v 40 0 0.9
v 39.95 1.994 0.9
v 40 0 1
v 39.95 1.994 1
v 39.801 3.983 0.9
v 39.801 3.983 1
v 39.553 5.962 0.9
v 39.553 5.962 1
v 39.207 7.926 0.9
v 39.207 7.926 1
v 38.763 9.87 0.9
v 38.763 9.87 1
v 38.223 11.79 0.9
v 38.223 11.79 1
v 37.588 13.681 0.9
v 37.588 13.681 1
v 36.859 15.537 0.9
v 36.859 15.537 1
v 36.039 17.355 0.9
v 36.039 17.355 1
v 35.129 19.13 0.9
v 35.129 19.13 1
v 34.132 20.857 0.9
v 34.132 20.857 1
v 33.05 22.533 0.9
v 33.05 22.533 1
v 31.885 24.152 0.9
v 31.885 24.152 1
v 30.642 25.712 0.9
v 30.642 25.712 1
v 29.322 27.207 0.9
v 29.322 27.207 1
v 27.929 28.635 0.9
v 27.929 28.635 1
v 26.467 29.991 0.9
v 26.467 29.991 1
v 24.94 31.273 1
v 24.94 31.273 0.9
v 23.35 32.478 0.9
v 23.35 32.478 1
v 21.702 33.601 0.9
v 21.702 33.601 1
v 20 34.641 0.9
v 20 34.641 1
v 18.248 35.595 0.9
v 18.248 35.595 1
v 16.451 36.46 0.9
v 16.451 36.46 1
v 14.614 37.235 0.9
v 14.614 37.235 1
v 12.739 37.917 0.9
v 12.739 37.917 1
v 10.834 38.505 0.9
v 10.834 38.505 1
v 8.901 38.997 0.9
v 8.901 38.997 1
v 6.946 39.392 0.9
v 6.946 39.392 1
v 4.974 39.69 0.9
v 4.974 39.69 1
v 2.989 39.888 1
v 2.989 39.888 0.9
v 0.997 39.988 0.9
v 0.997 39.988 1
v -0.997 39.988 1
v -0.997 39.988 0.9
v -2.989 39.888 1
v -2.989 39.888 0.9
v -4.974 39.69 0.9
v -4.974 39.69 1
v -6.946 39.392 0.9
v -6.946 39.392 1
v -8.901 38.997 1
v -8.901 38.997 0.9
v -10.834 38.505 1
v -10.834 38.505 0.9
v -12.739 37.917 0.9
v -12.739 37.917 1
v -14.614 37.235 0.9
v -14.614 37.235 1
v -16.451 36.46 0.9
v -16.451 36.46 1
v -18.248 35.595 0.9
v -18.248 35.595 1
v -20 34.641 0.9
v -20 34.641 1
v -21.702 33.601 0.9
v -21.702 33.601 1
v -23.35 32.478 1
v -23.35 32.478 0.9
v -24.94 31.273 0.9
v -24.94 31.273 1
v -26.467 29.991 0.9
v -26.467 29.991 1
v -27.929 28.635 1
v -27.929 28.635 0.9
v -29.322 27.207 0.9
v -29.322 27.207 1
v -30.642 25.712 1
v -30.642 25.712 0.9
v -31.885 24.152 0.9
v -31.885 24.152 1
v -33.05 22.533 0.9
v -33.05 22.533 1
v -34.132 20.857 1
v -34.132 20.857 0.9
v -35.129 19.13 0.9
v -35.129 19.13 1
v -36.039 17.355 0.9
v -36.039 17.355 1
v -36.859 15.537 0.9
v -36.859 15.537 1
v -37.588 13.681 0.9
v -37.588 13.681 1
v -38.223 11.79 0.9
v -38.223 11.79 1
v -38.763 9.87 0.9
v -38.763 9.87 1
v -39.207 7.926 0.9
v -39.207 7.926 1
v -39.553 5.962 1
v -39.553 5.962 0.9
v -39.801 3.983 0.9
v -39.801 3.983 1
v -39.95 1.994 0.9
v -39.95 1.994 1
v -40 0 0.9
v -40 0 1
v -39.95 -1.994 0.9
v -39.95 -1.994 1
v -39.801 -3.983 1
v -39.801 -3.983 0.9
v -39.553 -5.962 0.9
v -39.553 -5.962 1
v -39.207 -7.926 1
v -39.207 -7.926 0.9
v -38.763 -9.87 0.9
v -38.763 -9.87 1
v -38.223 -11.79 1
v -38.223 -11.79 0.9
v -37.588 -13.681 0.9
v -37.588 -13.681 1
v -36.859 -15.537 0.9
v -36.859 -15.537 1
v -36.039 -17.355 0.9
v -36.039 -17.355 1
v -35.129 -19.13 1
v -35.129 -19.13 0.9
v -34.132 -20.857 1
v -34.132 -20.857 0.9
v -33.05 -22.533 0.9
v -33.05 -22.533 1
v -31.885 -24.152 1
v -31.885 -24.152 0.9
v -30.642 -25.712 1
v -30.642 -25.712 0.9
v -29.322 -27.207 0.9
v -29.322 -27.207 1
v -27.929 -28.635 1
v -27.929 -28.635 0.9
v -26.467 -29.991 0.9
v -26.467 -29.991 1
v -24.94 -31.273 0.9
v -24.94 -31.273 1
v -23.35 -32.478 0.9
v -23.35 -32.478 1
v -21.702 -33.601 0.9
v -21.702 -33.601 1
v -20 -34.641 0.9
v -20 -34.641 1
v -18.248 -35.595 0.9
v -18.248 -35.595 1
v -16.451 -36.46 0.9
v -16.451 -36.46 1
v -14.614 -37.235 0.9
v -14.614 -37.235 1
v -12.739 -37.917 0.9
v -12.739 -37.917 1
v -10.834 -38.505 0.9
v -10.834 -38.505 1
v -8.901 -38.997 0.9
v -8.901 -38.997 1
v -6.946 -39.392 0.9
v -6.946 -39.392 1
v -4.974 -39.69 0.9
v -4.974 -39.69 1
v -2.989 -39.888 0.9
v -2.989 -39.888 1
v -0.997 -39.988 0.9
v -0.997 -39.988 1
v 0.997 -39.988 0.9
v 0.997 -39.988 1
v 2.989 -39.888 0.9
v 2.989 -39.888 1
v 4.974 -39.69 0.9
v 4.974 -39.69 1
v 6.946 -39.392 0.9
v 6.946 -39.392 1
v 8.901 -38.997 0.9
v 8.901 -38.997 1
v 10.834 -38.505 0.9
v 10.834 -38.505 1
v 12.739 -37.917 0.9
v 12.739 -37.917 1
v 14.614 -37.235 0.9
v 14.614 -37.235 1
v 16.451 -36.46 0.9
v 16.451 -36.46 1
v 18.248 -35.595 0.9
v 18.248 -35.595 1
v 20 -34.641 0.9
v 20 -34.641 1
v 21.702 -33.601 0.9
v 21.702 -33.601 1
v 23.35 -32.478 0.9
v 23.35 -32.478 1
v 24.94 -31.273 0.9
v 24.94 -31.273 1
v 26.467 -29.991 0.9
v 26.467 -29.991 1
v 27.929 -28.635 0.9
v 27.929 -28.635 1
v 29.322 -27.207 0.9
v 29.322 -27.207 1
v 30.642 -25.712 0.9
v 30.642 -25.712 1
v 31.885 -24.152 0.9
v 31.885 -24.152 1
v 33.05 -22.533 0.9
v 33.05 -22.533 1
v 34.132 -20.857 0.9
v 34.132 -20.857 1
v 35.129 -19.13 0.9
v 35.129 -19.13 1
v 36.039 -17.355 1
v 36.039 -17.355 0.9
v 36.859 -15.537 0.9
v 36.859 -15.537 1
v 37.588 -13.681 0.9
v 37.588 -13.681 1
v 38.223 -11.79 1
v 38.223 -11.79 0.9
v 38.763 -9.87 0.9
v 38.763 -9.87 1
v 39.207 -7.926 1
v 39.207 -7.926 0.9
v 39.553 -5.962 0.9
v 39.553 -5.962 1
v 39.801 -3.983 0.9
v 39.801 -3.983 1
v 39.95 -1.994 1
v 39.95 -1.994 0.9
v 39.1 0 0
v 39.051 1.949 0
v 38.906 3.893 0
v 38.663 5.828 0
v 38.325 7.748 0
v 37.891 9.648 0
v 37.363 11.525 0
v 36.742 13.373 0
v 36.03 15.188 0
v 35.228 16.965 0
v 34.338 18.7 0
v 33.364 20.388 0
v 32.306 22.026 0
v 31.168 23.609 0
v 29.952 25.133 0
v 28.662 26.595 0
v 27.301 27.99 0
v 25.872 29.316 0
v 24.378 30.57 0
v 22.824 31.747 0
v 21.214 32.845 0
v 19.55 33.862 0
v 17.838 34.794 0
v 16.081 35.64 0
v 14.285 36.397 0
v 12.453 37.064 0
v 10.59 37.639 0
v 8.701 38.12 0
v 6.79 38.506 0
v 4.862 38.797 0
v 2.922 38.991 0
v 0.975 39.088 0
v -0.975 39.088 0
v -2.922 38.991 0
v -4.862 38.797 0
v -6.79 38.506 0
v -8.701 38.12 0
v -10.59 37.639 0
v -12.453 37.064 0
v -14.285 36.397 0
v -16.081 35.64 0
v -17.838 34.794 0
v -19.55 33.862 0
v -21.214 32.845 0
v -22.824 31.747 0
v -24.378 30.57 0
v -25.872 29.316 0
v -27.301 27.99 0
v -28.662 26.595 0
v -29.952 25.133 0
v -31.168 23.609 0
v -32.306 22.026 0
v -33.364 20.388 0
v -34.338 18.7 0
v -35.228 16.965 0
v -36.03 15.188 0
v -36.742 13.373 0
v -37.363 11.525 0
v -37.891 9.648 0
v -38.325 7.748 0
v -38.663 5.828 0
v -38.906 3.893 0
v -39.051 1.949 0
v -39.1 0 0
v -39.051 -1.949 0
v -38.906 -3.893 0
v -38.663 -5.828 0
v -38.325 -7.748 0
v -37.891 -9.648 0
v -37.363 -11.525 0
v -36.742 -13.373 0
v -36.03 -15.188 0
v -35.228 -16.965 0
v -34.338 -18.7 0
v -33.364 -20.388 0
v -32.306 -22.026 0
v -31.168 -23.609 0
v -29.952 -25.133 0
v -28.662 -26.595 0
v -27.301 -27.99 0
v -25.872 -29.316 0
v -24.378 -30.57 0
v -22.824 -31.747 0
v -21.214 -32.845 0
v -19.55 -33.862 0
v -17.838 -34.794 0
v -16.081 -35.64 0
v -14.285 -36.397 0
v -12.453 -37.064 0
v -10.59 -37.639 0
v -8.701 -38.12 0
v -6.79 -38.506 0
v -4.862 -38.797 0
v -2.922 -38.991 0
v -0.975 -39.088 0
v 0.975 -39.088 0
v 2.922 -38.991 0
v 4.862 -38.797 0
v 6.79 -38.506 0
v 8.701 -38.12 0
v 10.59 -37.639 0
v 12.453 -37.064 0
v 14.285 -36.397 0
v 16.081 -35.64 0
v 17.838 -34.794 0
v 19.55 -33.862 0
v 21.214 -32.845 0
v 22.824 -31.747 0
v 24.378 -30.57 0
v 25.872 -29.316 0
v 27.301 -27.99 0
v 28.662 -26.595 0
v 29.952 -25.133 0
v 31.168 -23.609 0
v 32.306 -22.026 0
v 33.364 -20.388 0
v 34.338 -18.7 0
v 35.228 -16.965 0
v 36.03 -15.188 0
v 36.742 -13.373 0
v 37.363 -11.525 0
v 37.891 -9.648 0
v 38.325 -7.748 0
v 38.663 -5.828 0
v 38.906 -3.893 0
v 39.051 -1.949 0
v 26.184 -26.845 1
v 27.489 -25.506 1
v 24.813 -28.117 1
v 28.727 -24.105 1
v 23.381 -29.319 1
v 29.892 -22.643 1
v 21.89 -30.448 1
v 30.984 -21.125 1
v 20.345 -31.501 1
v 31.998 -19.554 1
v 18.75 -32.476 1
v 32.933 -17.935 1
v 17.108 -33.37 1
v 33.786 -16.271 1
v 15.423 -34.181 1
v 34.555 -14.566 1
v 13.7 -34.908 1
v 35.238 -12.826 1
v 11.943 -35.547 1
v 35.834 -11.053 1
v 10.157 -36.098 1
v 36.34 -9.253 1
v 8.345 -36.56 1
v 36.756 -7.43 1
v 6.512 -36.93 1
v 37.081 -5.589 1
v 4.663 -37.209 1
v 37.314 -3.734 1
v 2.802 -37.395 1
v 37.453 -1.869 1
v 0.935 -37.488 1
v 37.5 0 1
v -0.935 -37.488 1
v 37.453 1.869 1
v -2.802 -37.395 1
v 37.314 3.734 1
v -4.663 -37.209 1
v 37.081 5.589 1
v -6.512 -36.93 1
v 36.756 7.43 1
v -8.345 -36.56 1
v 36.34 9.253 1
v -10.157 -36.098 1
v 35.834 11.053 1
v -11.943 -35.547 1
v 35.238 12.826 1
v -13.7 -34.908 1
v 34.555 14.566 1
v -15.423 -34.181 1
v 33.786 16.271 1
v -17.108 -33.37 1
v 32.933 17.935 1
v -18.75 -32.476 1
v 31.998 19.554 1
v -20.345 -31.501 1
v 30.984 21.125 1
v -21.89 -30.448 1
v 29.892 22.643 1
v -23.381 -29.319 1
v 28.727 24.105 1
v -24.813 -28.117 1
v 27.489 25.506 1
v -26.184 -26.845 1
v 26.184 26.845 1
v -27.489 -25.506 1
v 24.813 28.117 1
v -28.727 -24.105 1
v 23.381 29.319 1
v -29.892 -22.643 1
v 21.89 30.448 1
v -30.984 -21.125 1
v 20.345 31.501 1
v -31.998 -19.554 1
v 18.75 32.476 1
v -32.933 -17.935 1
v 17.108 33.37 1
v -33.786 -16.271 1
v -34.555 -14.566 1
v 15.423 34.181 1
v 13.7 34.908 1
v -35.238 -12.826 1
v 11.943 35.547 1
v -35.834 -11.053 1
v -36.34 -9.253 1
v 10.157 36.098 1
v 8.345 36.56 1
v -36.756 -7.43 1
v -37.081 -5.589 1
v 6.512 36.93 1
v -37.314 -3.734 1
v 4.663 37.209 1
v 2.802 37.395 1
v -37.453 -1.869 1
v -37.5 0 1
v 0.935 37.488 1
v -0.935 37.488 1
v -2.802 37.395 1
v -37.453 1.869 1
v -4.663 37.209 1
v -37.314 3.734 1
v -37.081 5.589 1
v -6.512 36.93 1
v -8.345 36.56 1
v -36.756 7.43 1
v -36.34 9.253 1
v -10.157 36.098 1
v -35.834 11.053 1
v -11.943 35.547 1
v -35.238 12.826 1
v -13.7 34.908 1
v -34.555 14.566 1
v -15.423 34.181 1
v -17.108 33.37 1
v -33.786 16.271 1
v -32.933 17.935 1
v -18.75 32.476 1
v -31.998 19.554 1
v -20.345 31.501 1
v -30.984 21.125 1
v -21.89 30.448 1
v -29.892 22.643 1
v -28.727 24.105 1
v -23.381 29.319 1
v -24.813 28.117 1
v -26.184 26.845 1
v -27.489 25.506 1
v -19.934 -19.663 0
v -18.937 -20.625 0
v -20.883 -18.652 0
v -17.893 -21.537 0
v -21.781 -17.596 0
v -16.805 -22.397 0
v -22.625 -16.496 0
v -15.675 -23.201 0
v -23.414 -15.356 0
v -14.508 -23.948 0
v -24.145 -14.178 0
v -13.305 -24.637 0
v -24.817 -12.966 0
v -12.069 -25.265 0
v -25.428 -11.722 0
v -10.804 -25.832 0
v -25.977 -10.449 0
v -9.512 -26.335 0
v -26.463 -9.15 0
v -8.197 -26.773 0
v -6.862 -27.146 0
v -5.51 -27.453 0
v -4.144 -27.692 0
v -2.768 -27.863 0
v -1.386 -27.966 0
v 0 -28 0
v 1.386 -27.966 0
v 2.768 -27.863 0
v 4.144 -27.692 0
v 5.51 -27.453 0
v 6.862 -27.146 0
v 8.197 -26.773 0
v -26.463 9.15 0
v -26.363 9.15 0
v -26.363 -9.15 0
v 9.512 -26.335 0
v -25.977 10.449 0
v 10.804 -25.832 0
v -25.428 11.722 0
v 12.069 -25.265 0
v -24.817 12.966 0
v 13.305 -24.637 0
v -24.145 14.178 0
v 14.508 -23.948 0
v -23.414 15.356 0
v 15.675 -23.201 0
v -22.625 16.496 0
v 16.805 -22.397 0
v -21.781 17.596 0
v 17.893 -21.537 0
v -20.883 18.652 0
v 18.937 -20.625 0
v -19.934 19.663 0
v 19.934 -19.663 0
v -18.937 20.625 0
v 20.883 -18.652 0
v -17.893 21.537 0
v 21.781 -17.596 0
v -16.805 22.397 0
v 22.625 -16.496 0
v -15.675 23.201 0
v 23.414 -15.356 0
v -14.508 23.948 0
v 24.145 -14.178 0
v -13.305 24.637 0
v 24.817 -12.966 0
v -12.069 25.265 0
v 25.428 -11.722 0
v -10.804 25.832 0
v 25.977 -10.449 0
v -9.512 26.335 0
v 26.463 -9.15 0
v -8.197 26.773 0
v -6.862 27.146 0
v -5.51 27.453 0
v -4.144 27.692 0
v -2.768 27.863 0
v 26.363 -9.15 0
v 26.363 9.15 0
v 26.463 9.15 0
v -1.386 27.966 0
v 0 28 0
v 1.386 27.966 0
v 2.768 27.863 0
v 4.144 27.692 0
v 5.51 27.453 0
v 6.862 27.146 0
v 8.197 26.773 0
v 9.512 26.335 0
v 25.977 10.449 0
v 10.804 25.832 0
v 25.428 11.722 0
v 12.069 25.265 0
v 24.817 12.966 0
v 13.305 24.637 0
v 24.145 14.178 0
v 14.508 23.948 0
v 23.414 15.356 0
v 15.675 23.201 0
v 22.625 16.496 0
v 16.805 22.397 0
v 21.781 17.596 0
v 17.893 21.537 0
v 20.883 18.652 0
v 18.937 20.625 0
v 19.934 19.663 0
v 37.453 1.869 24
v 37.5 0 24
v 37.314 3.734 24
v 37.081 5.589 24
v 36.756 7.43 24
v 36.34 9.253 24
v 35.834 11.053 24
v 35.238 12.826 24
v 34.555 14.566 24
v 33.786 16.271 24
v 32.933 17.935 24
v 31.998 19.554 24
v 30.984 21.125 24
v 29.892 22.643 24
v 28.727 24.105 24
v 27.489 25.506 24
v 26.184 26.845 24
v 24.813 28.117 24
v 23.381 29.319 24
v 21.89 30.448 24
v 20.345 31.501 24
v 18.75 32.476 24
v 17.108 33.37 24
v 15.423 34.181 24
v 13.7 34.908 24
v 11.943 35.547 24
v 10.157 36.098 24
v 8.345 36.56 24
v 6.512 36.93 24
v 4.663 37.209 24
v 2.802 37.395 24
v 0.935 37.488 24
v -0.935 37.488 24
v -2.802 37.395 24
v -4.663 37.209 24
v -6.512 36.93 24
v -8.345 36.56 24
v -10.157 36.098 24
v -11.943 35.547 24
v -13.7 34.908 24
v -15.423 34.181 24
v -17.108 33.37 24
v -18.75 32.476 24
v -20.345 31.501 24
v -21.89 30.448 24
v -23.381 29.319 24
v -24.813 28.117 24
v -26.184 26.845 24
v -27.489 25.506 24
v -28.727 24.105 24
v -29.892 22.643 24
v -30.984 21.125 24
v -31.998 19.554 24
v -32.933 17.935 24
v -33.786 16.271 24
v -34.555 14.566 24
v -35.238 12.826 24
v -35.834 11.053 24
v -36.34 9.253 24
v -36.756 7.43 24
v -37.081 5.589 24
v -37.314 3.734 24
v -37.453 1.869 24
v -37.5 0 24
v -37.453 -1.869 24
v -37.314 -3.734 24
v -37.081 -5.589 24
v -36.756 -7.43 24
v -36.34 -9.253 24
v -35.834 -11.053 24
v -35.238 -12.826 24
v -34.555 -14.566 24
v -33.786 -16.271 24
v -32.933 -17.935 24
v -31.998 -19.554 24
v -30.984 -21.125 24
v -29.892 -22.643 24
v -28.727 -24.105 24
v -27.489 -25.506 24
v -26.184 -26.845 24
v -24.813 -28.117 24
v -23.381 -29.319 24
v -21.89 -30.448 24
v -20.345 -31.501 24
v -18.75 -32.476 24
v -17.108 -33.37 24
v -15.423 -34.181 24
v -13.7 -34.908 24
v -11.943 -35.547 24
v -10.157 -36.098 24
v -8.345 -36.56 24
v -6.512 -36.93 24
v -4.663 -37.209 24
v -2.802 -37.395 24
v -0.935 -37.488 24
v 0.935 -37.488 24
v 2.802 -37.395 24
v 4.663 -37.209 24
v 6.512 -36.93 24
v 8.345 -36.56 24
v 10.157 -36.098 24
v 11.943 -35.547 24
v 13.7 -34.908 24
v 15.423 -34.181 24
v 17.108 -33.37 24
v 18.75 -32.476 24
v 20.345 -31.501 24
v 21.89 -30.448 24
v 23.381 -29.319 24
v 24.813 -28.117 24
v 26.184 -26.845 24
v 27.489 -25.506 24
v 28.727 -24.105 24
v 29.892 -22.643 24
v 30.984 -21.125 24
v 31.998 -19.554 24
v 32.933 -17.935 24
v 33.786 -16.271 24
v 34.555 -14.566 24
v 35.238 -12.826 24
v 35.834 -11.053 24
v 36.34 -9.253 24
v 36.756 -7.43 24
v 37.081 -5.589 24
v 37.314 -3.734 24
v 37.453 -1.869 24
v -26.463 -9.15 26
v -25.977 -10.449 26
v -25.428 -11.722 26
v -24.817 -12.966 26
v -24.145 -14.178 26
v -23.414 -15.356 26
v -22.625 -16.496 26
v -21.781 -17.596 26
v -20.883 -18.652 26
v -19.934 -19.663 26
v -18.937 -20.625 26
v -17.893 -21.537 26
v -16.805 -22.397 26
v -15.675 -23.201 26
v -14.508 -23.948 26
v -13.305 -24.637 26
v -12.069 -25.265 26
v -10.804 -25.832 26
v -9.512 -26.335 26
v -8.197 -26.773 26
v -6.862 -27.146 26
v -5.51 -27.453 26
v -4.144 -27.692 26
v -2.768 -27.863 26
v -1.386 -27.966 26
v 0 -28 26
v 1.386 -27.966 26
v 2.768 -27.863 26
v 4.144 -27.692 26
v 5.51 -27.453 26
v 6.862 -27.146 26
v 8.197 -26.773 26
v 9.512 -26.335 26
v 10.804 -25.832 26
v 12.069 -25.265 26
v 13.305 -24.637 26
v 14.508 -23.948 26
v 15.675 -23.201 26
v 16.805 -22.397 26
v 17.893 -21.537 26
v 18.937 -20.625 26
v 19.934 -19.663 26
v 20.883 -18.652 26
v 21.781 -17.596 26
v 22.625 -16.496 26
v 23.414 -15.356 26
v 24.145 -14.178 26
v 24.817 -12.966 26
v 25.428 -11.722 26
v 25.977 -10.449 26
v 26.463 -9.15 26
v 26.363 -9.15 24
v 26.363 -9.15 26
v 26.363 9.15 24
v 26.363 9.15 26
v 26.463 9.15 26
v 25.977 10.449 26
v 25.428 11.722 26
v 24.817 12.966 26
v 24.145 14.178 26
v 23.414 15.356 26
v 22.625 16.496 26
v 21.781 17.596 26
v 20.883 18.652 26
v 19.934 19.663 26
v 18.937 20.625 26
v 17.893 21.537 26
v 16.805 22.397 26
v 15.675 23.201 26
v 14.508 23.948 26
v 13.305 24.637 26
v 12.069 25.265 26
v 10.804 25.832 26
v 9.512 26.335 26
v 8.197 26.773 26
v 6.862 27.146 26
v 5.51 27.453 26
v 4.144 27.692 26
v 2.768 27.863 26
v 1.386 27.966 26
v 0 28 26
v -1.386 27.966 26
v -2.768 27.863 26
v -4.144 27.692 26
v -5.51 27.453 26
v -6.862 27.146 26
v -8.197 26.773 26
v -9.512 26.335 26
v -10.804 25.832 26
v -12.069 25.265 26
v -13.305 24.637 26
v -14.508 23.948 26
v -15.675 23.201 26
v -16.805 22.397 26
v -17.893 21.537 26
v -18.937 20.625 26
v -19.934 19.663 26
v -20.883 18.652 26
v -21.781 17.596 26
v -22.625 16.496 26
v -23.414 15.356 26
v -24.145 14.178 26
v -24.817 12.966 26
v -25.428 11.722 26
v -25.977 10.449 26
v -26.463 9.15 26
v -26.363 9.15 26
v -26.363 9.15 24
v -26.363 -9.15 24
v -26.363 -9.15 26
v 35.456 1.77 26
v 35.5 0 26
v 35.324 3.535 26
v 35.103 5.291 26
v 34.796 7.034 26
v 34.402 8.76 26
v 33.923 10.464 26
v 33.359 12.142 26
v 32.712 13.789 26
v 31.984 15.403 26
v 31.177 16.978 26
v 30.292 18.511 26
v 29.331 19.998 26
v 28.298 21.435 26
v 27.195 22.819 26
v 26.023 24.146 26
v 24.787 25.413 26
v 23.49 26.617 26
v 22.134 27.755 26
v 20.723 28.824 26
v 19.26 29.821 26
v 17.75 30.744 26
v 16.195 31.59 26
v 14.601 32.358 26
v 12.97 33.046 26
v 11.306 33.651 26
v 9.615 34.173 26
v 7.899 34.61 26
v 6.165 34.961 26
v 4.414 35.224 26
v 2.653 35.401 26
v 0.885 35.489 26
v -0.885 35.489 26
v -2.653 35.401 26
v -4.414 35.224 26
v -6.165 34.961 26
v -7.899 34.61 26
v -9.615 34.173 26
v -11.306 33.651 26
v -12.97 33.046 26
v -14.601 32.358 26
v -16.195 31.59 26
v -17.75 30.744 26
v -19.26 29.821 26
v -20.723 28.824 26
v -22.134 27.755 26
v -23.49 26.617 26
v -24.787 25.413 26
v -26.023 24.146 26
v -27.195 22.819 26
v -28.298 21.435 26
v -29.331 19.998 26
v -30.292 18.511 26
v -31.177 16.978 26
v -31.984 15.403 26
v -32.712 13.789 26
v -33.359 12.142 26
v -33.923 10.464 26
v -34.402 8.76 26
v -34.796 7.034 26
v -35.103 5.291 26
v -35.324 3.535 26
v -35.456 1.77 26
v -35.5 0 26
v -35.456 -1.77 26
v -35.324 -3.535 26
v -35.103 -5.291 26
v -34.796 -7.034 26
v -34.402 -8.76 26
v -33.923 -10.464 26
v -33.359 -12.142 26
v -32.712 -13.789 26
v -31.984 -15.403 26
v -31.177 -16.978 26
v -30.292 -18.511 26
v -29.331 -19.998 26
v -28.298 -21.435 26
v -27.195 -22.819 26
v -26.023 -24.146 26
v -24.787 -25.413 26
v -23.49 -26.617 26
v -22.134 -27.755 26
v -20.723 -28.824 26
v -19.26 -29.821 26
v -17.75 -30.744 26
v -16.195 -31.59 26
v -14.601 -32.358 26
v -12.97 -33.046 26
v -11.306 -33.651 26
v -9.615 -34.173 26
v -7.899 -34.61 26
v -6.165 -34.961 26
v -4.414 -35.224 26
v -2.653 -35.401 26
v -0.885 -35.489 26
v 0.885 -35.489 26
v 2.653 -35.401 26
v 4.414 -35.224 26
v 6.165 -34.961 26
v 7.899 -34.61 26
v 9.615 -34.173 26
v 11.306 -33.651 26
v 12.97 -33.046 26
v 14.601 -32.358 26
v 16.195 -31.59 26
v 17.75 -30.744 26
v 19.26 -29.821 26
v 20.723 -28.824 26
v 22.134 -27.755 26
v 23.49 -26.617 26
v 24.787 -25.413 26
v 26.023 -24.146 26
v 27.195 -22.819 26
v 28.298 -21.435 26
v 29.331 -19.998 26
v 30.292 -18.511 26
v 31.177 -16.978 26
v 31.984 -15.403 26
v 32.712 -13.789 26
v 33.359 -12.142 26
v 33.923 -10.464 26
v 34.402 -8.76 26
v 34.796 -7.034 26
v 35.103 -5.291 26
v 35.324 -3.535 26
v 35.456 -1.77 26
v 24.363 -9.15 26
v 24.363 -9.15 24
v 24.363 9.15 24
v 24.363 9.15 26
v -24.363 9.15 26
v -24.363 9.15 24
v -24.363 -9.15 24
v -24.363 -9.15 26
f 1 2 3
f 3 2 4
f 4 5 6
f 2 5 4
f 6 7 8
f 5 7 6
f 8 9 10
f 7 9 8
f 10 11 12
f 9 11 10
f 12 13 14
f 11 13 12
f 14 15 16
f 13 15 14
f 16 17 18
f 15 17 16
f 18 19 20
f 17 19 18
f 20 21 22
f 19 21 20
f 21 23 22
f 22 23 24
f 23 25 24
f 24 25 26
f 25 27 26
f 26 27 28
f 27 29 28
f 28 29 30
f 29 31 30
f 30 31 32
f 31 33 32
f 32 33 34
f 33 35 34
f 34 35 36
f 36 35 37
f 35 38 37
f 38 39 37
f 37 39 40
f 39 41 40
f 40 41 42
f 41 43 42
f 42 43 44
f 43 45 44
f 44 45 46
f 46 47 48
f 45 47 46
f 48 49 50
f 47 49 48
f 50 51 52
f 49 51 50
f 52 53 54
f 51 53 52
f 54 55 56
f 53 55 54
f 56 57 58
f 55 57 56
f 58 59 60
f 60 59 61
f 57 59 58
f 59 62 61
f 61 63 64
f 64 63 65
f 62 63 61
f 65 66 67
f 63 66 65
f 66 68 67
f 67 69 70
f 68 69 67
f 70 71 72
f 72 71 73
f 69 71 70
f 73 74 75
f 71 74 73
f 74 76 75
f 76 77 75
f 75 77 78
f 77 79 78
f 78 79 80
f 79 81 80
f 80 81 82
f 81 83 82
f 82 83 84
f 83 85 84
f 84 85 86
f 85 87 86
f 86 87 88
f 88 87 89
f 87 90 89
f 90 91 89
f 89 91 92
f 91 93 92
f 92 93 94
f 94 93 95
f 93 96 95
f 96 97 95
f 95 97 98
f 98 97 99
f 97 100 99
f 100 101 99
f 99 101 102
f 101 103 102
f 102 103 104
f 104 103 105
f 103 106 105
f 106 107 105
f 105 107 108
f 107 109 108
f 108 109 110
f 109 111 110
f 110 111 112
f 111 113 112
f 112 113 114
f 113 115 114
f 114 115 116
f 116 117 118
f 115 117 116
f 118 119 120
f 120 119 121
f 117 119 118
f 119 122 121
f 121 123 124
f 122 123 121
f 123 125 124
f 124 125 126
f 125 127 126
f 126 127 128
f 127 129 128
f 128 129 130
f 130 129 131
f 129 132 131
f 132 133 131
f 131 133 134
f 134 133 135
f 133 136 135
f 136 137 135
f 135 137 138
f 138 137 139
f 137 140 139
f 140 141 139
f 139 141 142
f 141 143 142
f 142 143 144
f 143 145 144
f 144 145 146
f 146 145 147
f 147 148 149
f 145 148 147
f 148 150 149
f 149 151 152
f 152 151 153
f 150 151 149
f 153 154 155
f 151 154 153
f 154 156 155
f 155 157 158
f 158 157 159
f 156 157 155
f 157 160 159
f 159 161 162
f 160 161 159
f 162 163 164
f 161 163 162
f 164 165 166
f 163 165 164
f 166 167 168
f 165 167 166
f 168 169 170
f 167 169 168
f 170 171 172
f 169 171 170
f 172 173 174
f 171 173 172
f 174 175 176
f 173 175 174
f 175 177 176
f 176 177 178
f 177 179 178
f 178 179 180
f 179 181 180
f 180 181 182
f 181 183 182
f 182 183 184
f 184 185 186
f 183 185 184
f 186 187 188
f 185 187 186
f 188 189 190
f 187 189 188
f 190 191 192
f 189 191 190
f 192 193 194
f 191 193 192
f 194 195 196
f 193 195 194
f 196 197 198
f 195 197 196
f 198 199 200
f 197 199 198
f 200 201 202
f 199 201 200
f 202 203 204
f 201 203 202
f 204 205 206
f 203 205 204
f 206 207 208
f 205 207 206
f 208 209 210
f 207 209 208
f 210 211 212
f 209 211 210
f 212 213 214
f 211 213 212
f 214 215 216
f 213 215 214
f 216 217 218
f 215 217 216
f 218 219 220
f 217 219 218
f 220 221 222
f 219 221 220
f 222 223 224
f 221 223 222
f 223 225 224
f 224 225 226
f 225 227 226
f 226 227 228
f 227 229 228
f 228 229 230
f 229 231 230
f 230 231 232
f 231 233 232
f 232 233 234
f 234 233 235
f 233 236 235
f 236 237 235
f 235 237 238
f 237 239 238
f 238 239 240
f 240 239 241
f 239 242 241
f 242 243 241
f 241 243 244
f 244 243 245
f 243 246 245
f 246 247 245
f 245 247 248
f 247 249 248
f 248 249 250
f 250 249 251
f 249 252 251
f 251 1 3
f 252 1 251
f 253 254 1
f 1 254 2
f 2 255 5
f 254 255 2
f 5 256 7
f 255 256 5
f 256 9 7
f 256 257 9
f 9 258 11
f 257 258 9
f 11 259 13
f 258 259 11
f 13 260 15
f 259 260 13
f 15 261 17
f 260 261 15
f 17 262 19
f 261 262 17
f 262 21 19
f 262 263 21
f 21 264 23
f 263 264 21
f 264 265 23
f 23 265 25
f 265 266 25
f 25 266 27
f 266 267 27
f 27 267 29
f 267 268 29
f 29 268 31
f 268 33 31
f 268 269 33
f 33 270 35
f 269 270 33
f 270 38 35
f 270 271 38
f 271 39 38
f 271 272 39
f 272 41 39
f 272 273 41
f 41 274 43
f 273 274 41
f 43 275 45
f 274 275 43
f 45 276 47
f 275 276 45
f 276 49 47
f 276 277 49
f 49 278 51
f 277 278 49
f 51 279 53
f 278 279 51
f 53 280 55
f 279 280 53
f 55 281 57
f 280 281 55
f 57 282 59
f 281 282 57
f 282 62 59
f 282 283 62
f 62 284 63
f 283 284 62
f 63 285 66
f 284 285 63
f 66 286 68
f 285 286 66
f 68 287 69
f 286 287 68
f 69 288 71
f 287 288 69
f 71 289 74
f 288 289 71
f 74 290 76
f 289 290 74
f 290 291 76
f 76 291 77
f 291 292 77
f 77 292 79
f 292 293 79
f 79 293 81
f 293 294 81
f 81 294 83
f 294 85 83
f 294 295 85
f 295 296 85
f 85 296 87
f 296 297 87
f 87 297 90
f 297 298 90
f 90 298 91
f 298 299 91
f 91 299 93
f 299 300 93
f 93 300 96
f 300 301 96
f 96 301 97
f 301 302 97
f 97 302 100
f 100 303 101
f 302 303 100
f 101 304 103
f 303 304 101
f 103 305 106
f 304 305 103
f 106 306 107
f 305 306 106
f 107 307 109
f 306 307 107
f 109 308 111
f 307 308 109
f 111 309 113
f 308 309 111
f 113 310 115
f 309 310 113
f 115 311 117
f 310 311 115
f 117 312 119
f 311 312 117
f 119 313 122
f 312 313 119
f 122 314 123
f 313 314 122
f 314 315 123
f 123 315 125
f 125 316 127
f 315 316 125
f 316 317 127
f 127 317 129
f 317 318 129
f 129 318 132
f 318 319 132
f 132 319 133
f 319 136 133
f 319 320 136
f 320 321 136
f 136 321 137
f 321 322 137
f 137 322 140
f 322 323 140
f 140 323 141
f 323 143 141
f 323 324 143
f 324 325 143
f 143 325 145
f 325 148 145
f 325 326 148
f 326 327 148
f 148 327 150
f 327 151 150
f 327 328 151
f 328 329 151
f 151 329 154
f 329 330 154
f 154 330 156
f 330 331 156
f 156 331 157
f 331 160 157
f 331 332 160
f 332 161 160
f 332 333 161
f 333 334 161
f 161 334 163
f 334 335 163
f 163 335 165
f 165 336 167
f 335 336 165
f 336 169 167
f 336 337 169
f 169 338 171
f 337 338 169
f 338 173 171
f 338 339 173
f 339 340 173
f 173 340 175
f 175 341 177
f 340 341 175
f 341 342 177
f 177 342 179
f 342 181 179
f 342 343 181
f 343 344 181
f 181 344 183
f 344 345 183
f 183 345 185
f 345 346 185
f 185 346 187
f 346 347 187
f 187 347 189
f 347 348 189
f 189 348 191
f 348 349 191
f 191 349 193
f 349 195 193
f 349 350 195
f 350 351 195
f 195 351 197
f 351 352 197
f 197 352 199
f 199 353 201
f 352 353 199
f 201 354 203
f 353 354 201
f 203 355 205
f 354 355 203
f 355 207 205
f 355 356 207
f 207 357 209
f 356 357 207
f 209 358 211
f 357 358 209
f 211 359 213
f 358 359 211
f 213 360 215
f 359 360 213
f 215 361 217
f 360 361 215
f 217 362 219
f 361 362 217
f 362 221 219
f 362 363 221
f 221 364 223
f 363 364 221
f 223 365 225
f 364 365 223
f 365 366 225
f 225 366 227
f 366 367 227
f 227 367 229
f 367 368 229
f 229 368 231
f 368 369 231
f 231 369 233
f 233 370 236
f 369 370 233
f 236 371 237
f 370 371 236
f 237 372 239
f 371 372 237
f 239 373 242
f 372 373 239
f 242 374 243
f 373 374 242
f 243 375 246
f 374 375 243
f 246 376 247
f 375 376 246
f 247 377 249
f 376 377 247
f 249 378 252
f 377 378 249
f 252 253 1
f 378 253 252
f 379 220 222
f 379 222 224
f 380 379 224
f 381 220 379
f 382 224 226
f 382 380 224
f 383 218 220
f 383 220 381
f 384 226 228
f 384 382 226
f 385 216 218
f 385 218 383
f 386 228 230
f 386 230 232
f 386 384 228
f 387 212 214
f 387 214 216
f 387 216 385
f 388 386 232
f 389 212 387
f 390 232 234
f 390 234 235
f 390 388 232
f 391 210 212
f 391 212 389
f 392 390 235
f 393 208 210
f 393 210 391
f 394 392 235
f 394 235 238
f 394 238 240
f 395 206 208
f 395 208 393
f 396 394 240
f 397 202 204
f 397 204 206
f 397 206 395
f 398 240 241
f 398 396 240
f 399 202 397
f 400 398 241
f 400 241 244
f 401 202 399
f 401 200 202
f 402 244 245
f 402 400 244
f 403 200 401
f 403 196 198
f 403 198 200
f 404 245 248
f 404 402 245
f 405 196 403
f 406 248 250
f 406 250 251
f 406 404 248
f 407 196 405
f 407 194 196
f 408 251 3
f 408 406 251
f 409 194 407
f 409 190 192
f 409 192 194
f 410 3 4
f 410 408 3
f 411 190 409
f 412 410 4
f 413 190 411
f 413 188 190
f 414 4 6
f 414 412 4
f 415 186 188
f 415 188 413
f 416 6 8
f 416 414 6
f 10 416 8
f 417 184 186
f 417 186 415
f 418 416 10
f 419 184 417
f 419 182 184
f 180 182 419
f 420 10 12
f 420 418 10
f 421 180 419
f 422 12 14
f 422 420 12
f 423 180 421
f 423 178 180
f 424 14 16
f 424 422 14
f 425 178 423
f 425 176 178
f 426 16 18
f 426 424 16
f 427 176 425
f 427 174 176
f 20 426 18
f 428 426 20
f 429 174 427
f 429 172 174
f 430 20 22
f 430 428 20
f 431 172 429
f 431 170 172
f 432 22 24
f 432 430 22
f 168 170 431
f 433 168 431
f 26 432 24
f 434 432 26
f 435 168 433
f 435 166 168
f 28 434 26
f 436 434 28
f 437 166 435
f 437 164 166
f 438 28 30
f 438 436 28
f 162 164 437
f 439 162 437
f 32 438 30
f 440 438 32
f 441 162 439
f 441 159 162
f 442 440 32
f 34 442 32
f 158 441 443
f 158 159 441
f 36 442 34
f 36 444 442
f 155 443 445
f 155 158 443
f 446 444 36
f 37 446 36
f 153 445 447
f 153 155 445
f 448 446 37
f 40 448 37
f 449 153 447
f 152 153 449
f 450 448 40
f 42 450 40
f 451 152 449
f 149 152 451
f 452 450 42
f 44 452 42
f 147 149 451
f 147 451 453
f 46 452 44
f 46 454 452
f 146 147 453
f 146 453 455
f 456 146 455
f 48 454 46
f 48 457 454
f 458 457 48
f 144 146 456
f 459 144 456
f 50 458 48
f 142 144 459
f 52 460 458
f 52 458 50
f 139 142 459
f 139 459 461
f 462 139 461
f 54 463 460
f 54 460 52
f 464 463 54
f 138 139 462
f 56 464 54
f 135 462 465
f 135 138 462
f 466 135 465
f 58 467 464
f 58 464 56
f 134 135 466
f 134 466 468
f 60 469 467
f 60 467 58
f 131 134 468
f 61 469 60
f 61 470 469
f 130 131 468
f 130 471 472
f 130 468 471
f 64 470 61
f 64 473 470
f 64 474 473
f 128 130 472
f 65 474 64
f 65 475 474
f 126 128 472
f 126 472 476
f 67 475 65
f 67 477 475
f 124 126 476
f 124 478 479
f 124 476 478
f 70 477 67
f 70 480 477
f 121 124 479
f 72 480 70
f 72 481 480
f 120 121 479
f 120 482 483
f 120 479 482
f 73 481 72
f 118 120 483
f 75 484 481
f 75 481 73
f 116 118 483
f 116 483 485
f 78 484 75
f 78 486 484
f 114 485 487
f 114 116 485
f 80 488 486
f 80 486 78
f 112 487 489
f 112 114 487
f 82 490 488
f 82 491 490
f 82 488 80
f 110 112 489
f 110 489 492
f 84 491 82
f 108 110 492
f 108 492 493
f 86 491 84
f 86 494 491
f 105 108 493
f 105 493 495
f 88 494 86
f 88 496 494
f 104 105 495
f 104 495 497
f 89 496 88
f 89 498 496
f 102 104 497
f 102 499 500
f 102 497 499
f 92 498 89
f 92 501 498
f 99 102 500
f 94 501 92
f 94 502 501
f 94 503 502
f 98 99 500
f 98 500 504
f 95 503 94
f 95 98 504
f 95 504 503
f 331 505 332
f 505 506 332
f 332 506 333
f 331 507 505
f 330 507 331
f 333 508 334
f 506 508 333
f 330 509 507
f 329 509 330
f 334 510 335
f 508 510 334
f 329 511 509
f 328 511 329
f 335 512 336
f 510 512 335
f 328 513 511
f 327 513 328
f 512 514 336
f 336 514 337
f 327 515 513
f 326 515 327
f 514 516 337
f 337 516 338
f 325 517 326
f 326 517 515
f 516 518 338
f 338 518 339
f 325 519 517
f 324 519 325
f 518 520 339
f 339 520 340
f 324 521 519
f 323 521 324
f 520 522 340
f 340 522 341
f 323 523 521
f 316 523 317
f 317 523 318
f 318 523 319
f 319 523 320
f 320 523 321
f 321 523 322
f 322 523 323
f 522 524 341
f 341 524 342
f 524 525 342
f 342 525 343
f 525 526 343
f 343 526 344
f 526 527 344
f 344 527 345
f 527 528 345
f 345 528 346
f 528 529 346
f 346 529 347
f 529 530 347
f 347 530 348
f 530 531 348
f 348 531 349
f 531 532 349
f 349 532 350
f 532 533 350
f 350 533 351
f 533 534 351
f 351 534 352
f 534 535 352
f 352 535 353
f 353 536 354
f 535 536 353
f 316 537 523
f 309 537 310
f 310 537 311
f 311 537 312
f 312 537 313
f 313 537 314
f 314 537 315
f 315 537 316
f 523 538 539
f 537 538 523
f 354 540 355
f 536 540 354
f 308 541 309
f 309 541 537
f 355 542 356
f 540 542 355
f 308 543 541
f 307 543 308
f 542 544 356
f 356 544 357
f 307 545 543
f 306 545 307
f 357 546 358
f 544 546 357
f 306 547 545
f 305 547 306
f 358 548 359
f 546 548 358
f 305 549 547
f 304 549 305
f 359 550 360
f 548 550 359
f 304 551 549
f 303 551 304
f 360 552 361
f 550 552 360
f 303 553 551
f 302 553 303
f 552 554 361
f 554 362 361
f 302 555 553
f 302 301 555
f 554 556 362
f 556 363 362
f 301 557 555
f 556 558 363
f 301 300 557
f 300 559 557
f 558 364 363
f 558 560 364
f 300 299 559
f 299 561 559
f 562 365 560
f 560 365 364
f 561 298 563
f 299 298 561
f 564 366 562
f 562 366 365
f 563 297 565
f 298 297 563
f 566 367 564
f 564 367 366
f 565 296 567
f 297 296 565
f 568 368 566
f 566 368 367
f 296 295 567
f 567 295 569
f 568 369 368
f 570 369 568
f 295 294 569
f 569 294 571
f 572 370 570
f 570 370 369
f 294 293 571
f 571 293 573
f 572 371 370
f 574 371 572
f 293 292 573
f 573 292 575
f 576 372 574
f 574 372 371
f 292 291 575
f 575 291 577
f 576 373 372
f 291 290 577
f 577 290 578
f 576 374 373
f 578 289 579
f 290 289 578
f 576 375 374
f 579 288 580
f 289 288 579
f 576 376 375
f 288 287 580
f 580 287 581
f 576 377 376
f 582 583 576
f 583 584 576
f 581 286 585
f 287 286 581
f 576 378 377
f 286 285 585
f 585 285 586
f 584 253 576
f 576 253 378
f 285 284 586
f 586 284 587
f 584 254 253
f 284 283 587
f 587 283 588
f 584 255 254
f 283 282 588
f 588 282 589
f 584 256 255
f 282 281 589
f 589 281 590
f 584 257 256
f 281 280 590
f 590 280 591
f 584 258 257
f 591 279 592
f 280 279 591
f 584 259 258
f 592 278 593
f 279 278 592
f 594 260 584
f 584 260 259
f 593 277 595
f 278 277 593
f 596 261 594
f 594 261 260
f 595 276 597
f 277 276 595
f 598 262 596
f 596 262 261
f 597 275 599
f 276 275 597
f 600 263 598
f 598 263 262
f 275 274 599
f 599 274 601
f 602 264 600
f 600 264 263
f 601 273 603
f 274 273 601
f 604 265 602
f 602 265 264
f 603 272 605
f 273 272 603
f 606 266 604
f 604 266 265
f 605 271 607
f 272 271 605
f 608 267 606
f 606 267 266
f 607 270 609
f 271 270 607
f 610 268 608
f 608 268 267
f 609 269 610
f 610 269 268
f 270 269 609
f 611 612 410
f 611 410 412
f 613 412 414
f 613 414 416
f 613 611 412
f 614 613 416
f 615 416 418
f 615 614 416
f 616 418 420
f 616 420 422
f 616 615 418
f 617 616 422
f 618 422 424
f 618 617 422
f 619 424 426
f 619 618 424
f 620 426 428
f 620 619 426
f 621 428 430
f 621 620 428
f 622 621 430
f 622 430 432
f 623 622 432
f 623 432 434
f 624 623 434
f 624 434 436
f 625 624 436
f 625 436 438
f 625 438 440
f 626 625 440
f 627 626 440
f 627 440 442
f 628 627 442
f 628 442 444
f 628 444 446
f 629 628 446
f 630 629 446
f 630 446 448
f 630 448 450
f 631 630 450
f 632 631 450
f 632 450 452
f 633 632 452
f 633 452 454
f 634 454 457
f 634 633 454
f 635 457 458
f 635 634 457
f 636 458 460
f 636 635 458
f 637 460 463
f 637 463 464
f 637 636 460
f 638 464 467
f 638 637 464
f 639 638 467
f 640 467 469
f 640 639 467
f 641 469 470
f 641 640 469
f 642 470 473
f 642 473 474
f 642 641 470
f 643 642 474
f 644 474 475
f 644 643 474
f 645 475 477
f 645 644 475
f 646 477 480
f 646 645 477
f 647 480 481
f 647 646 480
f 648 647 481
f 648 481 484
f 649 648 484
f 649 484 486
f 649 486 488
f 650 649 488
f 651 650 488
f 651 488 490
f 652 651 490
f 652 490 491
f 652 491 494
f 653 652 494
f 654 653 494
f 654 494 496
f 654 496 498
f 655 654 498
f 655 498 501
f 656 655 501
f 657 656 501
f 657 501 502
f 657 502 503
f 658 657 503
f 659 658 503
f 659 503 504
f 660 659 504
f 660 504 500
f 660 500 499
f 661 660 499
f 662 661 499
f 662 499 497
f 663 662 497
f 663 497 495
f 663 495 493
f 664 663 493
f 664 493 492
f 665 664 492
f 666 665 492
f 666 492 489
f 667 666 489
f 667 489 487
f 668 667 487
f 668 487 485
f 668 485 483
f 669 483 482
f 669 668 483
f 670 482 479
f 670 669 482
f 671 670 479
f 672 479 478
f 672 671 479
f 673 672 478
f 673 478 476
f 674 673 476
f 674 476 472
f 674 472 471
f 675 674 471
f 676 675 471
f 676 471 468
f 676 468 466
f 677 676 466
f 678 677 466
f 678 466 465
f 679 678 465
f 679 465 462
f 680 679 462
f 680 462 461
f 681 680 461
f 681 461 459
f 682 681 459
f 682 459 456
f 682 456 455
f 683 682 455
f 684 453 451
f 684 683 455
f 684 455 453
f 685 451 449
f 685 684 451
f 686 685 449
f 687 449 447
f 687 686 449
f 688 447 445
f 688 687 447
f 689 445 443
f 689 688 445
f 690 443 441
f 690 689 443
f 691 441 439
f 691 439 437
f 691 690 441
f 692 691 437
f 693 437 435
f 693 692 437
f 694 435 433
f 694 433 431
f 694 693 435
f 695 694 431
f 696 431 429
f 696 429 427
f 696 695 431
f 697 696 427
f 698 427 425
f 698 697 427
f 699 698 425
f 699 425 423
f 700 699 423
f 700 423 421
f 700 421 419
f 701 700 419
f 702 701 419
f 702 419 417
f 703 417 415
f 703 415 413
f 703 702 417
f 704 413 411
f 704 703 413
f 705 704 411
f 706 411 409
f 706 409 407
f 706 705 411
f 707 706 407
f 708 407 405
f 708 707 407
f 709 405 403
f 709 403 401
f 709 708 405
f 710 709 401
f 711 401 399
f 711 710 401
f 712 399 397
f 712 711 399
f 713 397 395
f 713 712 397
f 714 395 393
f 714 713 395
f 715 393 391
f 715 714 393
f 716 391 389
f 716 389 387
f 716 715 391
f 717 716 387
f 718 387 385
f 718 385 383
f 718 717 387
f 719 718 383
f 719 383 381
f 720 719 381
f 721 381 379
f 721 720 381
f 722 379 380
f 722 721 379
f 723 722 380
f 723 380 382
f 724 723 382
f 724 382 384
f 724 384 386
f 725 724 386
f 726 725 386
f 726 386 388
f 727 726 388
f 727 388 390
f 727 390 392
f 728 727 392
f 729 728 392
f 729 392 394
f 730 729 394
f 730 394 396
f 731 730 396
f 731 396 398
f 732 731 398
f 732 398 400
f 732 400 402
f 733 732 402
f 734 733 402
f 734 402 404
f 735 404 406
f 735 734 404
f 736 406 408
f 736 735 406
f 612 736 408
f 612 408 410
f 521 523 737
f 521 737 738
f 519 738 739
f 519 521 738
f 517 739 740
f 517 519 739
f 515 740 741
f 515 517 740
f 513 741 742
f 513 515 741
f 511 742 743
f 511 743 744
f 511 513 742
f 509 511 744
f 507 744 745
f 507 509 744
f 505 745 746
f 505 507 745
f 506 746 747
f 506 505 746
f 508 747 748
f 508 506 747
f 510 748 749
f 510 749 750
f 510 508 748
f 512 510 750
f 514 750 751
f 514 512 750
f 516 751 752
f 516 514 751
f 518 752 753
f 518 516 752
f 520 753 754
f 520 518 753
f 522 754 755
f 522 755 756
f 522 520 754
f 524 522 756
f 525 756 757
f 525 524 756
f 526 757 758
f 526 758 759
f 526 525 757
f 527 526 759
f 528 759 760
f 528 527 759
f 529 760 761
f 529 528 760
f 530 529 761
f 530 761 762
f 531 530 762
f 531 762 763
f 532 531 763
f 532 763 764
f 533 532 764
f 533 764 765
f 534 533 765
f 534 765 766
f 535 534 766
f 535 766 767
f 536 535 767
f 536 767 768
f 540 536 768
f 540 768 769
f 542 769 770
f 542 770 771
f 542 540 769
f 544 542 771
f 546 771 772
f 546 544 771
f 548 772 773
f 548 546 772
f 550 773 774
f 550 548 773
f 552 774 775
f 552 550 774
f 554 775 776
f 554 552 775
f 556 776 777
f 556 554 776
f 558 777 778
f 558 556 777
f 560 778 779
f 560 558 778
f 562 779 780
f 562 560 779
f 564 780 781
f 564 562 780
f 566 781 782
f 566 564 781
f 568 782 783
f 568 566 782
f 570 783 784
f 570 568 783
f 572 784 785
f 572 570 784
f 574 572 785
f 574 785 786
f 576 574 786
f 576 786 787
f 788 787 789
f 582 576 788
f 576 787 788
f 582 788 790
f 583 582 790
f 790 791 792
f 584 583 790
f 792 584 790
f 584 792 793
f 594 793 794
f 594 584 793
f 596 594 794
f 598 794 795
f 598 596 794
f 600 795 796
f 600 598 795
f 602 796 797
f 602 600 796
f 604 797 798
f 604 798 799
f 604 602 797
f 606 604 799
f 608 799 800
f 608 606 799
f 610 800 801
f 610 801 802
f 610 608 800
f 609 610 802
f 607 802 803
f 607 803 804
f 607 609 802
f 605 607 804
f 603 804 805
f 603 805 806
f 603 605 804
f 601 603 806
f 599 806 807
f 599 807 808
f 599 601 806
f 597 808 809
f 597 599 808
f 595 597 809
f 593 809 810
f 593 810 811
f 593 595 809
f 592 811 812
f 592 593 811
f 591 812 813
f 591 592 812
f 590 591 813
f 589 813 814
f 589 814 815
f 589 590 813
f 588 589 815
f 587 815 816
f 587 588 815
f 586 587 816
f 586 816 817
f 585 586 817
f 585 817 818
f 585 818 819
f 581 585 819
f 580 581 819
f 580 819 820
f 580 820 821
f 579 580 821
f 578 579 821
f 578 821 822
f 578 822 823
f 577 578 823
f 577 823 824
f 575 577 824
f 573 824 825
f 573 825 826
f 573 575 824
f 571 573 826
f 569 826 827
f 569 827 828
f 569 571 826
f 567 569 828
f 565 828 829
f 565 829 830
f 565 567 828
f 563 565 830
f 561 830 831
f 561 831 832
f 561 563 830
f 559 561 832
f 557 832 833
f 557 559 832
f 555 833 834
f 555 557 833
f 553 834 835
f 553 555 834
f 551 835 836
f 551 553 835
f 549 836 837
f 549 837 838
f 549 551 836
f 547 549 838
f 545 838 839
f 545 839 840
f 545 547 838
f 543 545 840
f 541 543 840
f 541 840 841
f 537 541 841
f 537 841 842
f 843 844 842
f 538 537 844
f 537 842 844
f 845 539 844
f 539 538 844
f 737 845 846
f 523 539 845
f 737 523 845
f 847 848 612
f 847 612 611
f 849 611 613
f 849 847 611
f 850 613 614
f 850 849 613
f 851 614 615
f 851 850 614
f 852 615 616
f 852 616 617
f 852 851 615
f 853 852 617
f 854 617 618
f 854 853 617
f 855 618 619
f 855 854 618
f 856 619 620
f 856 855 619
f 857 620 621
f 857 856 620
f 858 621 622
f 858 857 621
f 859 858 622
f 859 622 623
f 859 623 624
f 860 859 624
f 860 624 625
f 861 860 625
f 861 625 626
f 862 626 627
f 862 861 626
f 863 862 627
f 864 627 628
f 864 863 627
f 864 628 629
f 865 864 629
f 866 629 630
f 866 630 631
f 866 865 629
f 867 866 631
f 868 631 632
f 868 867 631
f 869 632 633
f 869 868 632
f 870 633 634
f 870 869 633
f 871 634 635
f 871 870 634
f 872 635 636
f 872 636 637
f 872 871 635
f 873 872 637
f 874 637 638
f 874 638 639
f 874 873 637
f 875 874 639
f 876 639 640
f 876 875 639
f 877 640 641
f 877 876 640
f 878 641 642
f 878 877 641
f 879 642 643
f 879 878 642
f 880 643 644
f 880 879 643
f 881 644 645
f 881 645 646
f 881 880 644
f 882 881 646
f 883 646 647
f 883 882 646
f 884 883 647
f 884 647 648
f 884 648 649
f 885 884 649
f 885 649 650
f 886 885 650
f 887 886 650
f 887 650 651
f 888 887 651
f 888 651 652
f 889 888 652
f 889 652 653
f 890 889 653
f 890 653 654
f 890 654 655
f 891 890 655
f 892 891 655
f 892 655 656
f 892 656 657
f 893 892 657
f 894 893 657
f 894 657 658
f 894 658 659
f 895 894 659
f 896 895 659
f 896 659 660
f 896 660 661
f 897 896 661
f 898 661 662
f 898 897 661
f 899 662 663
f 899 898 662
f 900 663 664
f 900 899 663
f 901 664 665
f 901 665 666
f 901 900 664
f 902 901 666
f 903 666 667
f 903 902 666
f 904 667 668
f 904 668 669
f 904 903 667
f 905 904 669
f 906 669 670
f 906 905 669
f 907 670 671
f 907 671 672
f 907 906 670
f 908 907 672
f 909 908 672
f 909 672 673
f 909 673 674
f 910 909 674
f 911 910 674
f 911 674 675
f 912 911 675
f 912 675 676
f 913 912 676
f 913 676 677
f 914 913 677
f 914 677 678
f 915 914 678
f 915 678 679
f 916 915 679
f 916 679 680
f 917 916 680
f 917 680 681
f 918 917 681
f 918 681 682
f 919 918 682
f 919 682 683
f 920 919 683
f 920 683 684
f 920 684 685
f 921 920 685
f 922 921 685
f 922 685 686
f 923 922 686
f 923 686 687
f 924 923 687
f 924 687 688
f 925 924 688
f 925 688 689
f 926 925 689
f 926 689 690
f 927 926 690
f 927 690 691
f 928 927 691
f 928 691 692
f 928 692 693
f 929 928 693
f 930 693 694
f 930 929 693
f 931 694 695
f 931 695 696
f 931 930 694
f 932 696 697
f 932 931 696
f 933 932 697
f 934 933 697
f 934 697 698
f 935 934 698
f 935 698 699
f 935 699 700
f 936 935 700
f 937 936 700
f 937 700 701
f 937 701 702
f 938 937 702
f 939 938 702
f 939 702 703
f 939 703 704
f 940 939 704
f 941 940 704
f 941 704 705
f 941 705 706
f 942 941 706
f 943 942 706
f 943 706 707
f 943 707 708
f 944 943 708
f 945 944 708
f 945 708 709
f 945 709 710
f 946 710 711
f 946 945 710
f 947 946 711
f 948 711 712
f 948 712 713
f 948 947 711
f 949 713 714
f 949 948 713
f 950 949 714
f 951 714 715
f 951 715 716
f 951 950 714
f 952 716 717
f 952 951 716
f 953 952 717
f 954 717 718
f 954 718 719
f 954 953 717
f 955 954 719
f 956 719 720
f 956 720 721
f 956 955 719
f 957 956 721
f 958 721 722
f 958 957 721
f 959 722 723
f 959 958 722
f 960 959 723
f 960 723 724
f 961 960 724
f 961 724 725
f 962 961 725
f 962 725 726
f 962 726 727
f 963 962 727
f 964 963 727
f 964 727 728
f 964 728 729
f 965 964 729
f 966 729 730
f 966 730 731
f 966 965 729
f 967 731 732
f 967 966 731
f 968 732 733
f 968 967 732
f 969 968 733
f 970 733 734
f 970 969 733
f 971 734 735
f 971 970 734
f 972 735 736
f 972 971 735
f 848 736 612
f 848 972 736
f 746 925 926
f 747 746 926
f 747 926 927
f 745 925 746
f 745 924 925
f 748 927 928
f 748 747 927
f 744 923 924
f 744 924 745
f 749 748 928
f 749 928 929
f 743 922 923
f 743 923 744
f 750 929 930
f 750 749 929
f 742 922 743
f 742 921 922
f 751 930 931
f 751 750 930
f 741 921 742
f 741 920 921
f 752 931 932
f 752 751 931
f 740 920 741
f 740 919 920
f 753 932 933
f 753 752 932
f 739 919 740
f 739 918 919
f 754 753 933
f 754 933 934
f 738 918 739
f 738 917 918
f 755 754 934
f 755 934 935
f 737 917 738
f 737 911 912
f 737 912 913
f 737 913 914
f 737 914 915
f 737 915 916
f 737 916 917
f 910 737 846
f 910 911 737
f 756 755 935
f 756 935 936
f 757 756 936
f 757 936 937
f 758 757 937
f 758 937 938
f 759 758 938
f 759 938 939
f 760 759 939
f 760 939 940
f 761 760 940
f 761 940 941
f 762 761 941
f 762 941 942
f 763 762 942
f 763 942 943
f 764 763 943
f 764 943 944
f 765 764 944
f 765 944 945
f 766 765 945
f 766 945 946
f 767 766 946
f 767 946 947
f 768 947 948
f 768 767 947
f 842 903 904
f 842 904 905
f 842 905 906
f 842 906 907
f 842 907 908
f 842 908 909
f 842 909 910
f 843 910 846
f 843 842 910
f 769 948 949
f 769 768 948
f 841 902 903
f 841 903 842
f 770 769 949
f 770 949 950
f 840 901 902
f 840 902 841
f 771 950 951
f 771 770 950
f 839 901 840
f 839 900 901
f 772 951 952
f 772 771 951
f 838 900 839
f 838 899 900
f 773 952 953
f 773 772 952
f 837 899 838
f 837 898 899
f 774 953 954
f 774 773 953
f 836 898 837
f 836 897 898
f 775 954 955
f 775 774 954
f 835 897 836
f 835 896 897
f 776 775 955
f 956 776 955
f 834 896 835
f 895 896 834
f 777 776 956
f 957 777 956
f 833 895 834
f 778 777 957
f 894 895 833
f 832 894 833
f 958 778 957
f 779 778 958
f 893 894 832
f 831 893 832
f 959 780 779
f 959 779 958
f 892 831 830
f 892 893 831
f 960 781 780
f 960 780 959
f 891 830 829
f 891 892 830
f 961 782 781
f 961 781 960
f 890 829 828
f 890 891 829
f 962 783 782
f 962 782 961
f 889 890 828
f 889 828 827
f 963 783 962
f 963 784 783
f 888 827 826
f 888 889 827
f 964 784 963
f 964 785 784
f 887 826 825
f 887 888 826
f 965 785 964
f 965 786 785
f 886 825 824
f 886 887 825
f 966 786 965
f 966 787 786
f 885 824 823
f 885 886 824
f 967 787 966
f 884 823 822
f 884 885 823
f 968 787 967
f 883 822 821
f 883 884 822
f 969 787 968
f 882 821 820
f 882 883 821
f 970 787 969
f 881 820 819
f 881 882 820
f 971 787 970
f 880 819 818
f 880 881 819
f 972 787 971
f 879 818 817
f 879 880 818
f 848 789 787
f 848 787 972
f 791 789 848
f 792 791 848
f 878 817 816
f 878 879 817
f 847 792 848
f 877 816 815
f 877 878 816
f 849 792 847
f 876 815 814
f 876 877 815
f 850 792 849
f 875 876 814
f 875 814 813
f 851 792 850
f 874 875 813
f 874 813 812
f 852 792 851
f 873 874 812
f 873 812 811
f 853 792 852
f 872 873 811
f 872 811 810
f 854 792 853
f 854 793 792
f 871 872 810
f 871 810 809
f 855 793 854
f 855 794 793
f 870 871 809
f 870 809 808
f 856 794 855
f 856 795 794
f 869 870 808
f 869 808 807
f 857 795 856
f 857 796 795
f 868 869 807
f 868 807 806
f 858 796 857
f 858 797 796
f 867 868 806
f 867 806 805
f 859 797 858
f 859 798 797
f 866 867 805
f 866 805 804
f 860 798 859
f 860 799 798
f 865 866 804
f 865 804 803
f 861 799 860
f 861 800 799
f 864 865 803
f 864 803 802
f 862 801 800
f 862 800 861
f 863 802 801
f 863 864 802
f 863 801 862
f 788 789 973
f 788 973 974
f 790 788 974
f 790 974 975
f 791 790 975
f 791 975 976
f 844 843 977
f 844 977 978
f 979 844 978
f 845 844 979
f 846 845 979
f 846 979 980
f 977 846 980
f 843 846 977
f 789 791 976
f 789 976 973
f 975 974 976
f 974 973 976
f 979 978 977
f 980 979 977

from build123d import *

# Parameters (mm, degrees)
SKETCH_R        = 40
PAD_DEPTH       = 26
SKETCH001_R     = 40
SKETCH001_R_2   = 37.5
POCKET_DEPTH    = 26
SKETCH002_W     = 18.3
SKETCH002_H     = 2
PAD001_DEPTH    = 2
SKETCH003_W     = 18.3
SKETCH003_H     = 2
PAD002_DEPTH    = 2
CHAMFER_SIZE    = 2
CHAMFER001_SIZE = 0.9


with BuildPart() as part:
    # Sketch → Pad (new body)
    with BuildSketch(Plane.XY):
        Circle(SKETCH_R)
        with BuildLine():
            ThreePointArc((26.462757, 9.15), (0, 28), (-26.462757, 9.15))
            Line((-26.362757, 9.15), (-26.462757, 9.15))
            Line((-26.362757, -9.15), (-26.362757, 9.15))
            Line((-26.462757, -9.15), (-26.362757, -9.15))
            ThreePointArc((-26.462757, -9.15), (0, -28), (26.462757, -9.15))
            Line((26.462757, -9.15), (26.362757, -9.15))
            Line((26.362757, -9.15), (26.362757, 9.15))
            Line((26.362757, 9.15), (26.462757, 9.15))
        make_face(mode=Mode.SUBTRACT)
    extrude(amount=PAD_DEPTH)

    # Sketch001 → Pocket (cut)
    with BuildSketch(Plane.XY.offset(27)):
        Circle(SKETCH001_R)
        Circle(SKETCH001_R_2, mode=Mode.SUBTRACT)
    extrude(amount=-POCKET_DEPTH, mode=Mode.SUBTRACT)

    # Sketch002 (on Face10 of Pocket) → Pad001 (join)
    with BuildSketch(Plane.YZ.offset(-26.362757)):
        with Locations((0, 25)):
            Rectangle(SKETCH002_W, SKETCH002_H)
    extrude(amount=PAD001_DEPTH)

    # Sketch003 (on Face6 of Pad001) → Pad002 (join)
    with BuildSketch(Plane(origin=(26.362757, 0, 0), x_dir=(0, -1, 0), z_dir=(-1, 0, 0))):
        with Locations((0, 25)):
            Rectangle(SKETCH003_W, SKETCH003_H)
    extrude(amount=PAD002_DEPTH)

    # Chamfer
    chamfer_edges = [part.edges().sort_by_distance(p)[0] for p in [
        (-37.5, 0, 26),
    ]]
    chamfer(chamfer_edges, length=CHAMFER_SIZE)

    # Chamfer001
    chamfer001_edges = [part.edges().sort_by_distance(p)[0] for p in [
        (-40, 0, 0),
    ]]
    chamfer(chamfer001_edges, length=CHAMFER001_SIZE)


solid = part.part
